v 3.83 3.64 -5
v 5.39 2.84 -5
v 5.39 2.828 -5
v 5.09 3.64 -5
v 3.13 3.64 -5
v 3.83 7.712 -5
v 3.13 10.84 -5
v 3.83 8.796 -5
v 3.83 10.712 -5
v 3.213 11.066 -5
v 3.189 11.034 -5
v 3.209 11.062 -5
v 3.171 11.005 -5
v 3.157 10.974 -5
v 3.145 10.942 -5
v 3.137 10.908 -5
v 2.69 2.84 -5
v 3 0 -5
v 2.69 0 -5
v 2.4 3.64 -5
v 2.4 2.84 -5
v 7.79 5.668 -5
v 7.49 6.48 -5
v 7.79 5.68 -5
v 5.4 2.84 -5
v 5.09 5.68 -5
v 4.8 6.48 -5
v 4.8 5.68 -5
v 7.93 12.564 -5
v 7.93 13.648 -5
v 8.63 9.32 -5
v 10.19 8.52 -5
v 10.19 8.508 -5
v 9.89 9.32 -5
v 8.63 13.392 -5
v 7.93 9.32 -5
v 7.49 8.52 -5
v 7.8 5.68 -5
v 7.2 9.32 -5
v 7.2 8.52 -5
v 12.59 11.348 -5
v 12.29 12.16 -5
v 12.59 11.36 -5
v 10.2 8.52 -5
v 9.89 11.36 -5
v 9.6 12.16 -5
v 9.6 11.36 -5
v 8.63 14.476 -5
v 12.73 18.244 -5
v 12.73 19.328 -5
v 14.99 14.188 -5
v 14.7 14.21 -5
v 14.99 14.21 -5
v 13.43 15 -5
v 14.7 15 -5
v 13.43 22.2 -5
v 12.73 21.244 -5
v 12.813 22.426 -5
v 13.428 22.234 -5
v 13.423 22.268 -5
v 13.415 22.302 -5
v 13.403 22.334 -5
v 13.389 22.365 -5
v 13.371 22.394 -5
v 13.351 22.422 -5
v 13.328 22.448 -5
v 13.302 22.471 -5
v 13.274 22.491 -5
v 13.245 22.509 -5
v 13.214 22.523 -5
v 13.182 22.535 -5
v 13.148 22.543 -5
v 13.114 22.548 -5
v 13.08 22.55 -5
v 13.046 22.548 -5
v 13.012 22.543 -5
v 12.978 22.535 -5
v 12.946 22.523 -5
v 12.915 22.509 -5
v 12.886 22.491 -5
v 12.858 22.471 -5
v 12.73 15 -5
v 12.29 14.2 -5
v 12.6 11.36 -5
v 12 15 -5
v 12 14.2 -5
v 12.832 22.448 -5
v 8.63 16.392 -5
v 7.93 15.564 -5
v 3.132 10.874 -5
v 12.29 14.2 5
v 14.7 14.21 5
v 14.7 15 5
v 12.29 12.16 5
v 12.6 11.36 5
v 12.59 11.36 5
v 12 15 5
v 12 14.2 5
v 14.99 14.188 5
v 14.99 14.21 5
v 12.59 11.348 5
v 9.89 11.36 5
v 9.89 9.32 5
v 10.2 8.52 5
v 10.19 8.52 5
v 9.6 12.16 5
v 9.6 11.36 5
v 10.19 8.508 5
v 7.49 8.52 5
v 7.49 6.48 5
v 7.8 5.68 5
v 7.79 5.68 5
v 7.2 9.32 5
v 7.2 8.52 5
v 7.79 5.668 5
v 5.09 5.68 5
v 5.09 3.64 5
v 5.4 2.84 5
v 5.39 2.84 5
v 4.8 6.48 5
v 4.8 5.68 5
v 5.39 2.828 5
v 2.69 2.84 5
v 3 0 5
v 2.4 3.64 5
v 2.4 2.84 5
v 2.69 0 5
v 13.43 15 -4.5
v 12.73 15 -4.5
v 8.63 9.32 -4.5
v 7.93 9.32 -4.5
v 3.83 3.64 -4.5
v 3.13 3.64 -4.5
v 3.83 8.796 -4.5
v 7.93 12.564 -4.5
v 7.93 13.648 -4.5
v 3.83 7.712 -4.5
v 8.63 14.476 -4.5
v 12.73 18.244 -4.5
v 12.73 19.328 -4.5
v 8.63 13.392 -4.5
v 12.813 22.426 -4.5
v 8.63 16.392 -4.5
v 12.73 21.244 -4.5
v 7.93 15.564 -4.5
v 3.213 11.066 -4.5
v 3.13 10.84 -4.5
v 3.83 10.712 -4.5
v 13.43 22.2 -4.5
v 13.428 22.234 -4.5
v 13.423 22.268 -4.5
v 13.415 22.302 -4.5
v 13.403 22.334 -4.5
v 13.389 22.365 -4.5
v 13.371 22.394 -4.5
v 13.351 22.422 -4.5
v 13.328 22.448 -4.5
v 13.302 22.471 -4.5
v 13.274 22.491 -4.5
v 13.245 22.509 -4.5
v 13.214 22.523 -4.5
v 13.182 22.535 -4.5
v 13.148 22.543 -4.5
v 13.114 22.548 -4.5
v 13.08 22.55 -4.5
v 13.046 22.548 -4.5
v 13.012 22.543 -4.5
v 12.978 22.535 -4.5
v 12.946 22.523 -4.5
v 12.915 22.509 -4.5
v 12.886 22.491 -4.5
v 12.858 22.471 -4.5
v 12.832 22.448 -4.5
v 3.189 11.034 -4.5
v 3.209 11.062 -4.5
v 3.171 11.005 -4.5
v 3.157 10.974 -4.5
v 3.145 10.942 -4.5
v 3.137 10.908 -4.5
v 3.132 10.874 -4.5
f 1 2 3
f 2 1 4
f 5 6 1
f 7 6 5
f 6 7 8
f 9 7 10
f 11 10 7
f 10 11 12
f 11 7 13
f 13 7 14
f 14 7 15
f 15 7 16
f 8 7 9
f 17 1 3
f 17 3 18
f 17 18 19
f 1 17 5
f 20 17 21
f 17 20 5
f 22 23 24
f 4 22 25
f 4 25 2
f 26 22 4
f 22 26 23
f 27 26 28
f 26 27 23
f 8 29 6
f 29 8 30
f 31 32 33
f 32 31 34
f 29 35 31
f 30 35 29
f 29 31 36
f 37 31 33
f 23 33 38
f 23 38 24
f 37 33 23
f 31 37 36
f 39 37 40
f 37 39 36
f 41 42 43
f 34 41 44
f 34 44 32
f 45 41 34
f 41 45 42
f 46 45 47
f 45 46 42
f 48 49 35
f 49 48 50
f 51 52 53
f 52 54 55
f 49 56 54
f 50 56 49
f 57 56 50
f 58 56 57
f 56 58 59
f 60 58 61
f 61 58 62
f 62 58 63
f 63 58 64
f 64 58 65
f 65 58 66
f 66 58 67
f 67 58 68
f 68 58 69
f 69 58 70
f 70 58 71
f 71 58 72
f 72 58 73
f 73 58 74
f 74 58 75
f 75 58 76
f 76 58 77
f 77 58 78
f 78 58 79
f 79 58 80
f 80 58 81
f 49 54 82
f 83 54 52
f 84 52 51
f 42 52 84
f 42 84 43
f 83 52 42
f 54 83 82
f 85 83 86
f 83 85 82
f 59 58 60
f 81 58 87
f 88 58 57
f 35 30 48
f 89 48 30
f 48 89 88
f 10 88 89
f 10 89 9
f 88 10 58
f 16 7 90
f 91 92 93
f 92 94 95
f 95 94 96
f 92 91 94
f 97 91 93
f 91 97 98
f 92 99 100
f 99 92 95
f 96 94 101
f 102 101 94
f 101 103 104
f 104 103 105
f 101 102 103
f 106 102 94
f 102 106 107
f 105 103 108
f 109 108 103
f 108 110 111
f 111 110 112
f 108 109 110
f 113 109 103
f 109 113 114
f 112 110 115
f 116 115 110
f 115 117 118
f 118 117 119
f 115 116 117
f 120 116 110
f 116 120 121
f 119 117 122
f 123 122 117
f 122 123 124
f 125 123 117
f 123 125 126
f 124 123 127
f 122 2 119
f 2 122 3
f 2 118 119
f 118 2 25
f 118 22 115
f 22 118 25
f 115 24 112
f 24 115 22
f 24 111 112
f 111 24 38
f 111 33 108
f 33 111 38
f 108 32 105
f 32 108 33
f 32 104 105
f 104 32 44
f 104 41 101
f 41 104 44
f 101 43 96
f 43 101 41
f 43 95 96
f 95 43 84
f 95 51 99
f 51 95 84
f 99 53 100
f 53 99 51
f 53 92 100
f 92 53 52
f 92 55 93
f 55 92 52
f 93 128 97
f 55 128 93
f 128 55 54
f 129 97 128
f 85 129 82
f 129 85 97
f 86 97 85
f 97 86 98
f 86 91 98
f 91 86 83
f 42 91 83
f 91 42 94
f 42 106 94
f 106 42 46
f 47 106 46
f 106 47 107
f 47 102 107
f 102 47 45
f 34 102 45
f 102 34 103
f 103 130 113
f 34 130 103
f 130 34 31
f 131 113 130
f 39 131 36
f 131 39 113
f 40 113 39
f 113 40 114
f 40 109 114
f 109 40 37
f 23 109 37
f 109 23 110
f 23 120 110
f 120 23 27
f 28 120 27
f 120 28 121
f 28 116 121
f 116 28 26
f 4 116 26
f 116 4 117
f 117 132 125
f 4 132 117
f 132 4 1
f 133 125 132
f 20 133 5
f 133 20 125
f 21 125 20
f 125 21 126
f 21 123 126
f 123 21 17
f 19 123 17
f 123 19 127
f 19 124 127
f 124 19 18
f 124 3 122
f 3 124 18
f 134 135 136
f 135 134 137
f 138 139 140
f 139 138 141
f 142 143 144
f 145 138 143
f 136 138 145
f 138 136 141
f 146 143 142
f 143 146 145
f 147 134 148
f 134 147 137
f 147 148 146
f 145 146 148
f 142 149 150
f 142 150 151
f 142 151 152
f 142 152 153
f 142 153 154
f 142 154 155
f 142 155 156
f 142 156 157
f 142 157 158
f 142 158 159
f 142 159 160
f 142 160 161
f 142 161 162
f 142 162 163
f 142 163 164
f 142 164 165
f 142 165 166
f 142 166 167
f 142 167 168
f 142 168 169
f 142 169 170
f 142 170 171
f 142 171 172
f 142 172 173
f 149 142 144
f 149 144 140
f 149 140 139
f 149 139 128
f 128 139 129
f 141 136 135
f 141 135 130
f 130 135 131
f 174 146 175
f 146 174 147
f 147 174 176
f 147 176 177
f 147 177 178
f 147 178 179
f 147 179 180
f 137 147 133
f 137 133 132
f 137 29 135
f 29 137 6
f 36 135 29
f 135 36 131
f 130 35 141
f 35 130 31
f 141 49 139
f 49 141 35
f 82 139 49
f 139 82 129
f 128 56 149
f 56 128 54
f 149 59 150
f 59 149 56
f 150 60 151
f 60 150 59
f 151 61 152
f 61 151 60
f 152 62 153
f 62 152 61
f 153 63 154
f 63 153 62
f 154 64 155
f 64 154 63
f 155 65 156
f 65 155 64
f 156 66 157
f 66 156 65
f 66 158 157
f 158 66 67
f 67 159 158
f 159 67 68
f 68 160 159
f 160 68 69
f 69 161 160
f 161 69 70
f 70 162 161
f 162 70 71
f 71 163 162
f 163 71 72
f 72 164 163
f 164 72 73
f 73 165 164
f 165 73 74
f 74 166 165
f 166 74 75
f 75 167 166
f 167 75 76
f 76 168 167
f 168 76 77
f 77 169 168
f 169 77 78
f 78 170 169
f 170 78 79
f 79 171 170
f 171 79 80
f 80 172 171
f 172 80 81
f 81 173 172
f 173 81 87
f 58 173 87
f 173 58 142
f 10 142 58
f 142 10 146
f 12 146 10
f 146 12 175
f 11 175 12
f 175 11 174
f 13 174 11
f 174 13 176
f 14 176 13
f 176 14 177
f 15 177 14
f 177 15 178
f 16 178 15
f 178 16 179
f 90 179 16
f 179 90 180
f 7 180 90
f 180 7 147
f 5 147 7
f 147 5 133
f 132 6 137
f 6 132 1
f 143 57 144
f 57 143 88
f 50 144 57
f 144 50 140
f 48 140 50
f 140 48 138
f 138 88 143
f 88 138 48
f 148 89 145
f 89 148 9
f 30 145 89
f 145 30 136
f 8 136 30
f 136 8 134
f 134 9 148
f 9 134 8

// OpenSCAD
$fn = 64;

RENDER_IMAGE = false;
H0Stairs(is_printable = !RENDER_IMAGE);

module H0Stairs(
    height          = 15,
    width           = 10.0,

    step_size       = [2.7, 0.8],
    step_overhang   = 0.3,
    step_count      = 6,
    is_printable    = false
) {
    
    BIAS= 0.01;
    X_AXIS = [1, 0, 0];

    if (is_printable) {
        rotate(-90, [1, 0, 0]) Stairs();
    } else {
        Stairs();
    }

    module Stairs() {

        rotate(90, X_AXIS) linear_extrude(width, center=true) {
            for (i = [1 : step_count - 1]) {
                step_height = (height - step_size[1]) / (step_count - 1);
                translate([
                    i * (step_size[0] - step_overhang),
                    i * step_height
                ]) {
                    render() difference() {
                        union() {
                            square(step_size);
                            translate([step_overhang - BIAS, -step_height]) {
                                square([step_size[0], step_height+BIAS]);
                            }
                        }
                        a = atan((step_size[0] - step_overhang) / step_height);
                        translate([step_size[0] + .3, 0]) {
                            rotate(-90-a) translate([-1.4 * step_size[0],0]) {
                                square([
                                    1.4 * step_size[0] * 2,
                                    1.4 * step_height
                                ]);
                            }
                        }
                    }
                }
            }
        }

        handrail_tickness = [0.7, 0.5];

        handrail_height = 8.0;

        rotate(90, X_AXIS) translate([0,0,-width/2]) {
            translate([step_size[0] * .4, 0])linear_extrude(handrail_tickness[1]) {
               step_height = (height - step_size[1]) / (step_count - 1);
               for (i = [1 : 2 : step_count - 1]) {
                    
                    translate([
                        i * (step_size[0] - step_overhang),
                        i * step_height
                    ]) {
                        translate([-handrail_tickness[0]/2, 0]) {
                            square([handrail_tickness[0], handrail_height]);
                        }
                        translate([0, handrail_height]) {
                            circle(d=handrail_tickness[0]);
                        }
                    }
                }
                
                for (o=[0,3]) {
                    translate([
                        (step_size[0] - step_overhang),
                        step_height + handrail_height - o
                    ]) {
                        l = sqrt(pow((step_size[0] - step_overhang),2) 
                               + pow(step_height,2)) * (step_count - 2);
                        a = atan((step_size[0] - step_overhang)/step_height);
                        echo(a);
                        rotate(-a) translate([-handrail_tickness[0]/2, 0]) {
                            square([handrail_tickness[0], l]);
                        }
                    }
                }
            }
        }
    }
}
	
